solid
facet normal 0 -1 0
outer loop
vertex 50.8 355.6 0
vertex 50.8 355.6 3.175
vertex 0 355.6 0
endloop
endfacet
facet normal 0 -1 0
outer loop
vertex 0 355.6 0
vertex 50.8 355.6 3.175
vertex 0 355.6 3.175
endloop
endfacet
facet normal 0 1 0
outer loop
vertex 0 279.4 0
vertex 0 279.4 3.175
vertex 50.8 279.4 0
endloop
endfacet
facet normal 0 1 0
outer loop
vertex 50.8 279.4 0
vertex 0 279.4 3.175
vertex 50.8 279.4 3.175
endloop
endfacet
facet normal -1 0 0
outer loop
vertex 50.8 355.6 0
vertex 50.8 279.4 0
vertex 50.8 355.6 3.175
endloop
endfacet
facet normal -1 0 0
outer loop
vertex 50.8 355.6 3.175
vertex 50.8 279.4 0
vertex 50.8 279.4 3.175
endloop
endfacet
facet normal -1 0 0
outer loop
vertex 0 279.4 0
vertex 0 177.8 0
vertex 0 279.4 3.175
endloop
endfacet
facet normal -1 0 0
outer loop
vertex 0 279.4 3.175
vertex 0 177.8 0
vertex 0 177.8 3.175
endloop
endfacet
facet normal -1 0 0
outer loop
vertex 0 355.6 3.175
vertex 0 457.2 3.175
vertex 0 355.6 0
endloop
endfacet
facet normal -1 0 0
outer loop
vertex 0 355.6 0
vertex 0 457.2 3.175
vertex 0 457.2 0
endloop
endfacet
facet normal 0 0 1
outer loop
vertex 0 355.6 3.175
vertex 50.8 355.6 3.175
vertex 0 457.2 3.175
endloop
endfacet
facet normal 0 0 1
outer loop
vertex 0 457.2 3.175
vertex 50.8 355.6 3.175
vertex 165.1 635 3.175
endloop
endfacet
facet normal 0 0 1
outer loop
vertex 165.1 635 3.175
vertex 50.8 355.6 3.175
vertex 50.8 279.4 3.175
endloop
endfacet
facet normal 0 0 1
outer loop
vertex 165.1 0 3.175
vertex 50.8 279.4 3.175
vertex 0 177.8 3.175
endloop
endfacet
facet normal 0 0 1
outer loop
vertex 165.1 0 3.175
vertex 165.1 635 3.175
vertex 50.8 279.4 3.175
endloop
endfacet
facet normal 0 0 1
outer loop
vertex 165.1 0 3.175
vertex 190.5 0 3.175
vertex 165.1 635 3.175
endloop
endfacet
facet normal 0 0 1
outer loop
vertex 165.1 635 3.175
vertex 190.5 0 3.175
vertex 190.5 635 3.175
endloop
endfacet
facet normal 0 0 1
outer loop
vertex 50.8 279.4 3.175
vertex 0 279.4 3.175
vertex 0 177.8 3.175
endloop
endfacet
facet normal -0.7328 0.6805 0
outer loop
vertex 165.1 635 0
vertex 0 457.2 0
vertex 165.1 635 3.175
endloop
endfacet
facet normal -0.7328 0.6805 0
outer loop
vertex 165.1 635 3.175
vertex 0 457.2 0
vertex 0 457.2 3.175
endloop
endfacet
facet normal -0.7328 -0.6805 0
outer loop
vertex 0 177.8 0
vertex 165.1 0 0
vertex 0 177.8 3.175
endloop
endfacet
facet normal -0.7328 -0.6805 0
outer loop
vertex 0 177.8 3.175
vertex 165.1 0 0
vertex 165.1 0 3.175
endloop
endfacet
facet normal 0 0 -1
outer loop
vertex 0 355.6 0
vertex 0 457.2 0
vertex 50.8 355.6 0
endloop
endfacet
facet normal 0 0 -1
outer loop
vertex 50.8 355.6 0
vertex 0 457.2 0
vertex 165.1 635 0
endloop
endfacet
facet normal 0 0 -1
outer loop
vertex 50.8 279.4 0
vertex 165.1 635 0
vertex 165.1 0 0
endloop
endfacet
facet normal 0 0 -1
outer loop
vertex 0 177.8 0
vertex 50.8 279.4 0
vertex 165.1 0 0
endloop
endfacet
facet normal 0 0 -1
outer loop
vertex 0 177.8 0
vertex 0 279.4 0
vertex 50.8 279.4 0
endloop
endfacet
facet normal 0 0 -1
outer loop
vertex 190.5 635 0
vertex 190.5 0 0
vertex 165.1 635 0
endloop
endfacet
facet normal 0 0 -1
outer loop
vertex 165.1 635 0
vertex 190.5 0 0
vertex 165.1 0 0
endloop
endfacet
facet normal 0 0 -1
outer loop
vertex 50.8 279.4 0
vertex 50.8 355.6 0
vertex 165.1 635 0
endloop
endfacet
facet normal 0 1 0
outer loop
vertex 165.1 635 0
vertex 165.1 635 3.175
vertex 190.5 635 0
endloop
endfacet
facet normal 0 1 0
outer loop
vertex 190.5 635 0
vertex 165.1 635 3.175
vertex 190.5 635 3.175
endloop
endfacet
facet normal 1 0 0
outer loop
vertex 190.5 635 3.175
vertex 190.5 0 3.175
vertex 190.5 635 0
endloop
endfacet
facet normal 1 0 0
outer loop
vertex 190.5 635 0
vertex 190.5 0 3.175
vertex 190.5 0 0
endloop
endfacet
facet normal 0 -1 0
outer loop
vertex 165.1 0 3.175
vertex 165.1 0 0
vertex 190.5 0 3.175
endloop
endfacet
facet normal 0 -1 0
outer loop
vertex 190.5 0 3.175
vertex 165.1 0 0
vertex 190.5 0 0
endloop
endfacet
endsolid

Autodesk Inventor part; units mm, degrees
ref_plane "YZ Plane" through (0, 0, 0) normal (1, 0, 0) x (0, 1, 0)
ref_plane "XZ Plane" through (0, 0, 0) normal (0, 1, 0) x (-1, 0, 0)
ref_plane "XY Plane" through (0, 0, 0) normal (0, 0, 1) x (1, 0, 0)
sketch "Sketch1" plane through (0, 0, 0) normal (0, 0, 1) x (1, 0, 0)
  line L0 (0, 0) -> (190.5, 0)
  line L1 (190.5, 0) -> (190.5, 635)
  line L2 (190.5, 635) -> (0, 635)
  line L3 (0, 635) -> (0, 0)
  dimension "d0" = 190.5
  dimension "d1" = 635
extrude "Extrusion1" add sketch "Sketch1" along normal blind 3.175
sketch "Sketch2" plane through (0, 0, 3.175) normal (0, 0, 1) x (1, 0, 0)
  line L0 (0, 0) -> (0, 635) projected
  line L1 (190.5, 0) -> (0, 0) projected
  line L2 (165.1, 0) -> (0, 0)
  line L3 (0, 177.8) -> (165.1, 0)
  line L4 (0, 635) -> (190.5, 635) projected
  line L5 (165.1, 635) -> (0, 635)
  line L6 (0, 457.2) -> (165.1, 635)
  line L7 (0, 457.2) -> (0, 635)
  line L8 (165.1, 635) -> (165.1, 0) construction
  line L9 (190.5, 635) -> (190.5, 0) projected
  dimension "d5" = 177.8
  dimension "d8" = 177.8
  dimension "d9" = 25.4
extrude "Extrusion2" cut sketch "Sketch2" against normal up to next contours L0 L3 L1 | L0 L4 L6
sketch "Sketch4" plane through (0, 0, 3.175) normal (0, 0, 1) x (1, 0, 0)
  line L0 (0, 177.8) -> (0, 457.2) projected
  line L1 (0, 355.6) -> (50.8, 355.6)
  line L2 (50.8, 355.6) -> (50.8, 279.4)
  line L3 (50.8, 279.4) -> (0, 279.4)
  line L4 (0, 279.4) -> (0, 355.6)
  line L5 (165.1, 635) -> (50.8, 635) construction
  line L6 (50.8, 635) -> (50.8, 355.6) construction
  line L7 (50.8, 279.4) -> (50.8, 0) construction
  line L8 (50.8, 0) -> (165.1, 0) construction
  point P0 (0, 0)
  dimension "d17" = 76.2
  dimension "d18" = 50.8
extrude "Extrusion4" cut sketch "Sketch4" against normal through all
properties part number "Conveyor_Frame_BottomStabilizerPlate" material "Aluminum-6061"
